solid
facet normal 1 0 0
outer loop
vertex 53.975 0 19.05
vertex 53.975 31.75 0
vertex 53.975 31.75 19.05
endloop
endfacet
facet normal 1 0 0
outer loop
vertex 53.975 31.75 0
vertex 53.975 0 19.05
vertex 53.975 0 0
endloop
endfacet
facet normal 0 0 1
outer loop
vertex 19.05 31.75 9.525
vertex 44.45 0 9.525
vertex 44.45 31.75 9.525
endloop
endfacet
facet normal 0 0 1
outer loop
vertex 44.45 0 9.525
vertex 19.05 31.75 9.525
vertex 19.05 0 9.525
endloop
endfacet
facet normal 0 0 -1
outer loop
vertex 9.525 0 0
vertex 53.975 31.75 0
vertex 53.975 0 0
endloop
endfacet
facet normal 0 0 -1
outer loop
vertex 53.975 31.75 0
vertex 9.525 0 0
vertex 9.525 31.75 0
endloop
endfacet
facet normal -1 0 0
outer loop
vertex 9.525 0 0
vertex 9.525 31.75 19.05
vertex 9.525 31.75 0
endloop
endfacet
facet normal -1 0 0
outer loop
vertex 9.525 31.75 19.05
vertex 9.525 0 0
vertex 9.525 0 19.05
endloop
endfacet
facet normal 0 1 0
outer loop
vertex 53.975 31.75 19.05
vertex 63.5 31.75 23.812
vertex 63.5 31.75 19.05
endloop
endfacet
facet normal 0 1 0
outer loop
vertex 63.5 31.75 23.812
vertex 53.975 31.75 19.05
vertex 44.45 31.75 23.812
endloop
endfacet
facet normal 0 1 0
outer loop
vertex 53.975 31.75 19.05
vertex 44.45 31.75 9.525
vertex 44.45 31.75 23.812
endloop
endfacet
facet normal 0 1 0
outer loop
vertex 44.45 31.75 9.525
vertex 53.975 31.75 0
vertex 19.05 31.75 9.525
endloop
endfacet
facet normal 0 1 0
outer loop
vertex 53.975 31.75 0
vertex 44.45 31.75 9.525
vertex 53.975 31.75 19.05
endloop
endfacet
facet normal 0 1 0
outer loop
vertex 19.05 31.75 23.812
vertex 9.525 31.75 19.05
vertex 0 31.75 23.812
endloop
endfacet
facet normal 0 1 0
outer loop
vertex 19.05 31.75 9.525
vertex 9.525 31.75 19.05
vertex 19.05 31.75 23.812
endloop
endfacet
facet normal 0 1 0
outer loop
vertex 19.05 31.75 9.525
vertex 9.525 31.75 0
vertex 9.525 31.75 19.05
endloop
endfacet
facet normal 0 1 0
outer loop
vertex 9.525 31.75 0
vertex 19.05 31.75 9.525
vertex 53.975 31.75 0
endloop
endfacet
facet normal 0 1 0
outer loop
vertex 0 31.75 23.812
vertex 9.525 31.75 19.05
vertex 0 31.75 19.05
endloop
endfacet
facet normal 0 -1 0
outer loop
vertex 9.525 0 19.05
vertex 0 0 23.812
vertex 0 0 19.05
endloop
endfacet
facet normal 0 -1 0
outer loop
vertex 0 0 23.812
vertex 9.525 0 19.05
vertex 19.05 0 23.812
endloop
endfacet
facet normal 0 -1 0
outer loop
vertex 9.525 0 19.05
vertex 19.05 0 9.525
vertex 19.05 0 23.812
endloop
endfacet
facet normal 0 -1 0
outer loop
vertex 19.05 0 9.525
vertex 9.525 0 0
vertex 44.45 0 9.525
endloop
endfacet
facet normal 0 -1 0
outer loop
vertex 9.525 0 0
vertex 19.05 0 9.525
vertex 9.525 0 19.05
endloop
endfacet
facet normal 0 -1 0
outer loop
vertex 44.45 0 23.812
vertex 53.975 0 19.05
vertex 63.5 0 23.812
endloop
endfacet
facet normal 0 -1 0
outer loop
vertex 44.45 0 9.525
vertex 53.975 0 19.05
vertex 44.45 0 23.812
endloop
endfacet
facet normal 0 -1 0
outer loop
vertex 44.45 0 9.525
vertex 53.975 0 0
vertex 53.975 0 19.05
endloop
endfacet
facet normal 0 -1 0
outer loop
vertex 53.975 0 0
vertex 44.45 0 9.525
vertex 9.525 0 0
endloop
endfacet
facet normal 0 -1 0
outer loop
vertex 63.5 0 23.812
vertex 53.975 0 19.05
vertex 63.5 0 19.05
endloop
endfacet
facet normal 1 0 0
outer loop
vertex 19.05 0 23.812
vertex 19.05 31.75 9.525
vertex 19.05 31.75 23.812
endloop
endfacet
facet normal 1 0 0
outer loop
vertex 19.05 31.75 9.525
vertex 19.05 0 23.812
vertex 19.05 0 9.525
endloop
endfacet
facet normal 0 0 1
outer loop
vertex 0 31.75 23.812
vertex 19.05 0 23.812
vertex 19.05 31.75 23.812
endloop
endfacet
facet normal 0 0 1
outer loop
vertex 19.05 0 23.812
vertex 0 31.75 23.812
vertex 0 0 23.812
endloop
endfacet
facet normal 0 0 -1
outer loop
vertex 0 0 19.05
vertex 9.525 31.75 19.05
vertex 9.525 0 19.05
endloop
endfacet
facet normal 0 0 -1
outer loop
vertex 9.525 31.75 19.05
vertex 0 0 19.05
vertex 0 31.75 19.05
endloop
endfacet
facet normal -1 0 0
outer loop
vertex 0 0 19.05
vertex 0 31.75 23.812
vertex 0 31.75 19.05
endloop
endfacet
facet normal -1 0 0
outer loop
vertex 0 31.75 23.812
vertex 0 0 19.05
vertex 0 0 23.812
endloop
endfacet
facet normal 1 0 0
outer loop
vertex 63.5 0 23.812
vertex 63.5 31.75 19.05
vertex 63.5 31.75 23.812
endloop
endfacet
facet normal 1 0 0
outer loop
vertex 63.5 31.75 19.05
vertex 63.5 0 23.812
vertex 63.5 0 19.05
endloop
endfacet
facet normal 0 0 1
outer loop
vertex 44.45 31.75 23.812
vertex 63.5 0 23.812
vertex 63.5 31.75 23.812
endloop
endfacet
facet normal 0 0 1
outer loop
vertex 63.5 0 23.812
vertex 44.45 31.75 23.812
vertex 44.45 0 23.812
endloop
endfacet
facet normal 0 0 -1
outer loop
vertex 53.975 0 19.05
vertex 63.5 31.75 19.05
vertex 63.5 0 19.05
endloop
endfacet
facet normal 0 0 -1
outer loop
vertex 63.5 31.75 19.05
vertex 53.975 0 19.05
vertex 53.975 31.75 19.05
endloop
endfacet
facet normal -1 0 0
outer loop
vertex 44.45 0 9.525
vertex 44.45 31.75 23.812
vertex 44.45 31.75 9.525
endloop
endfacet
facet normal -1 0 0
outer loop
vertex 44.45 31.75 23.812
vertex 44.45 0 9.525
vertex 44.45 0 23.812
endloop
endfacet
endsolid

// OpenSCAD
BeeSpace=3/8;
FrameWidth=1+3/8;
TabLength=5/8;
Scale=1;

mBeeSpace=BeeSpace*25.4*Scale;
mFrameWidth=FrameWidth*25.4*Scale;
mTabLength=TabLength*25.4*Scale;


translate([mBeeSpace,0,0])cube([mFrameWidth+mBeeSpace,mTabLength*2,mBeeSpace]);
translate([0,0,mBeeSpace*2])cube([mBeeSpace*2,mTabLength*2,mBeeSpace/2]);
translate([mFrameWidth+mBeeSpace,0,mBeeSpace*2])cube([mBeeSpace*2,mTabLength*2,mBeeSpace/2]);
translate([mBeeSpace,0,0])cube([mBeeSpace,mTabLength*2,mBeeSpace*2.5]);
translate([mFrameWidth+mBeeSpace,0,0])cube([mBeeSpace,mTabLength*2,mBeeSpace*2.5]);
